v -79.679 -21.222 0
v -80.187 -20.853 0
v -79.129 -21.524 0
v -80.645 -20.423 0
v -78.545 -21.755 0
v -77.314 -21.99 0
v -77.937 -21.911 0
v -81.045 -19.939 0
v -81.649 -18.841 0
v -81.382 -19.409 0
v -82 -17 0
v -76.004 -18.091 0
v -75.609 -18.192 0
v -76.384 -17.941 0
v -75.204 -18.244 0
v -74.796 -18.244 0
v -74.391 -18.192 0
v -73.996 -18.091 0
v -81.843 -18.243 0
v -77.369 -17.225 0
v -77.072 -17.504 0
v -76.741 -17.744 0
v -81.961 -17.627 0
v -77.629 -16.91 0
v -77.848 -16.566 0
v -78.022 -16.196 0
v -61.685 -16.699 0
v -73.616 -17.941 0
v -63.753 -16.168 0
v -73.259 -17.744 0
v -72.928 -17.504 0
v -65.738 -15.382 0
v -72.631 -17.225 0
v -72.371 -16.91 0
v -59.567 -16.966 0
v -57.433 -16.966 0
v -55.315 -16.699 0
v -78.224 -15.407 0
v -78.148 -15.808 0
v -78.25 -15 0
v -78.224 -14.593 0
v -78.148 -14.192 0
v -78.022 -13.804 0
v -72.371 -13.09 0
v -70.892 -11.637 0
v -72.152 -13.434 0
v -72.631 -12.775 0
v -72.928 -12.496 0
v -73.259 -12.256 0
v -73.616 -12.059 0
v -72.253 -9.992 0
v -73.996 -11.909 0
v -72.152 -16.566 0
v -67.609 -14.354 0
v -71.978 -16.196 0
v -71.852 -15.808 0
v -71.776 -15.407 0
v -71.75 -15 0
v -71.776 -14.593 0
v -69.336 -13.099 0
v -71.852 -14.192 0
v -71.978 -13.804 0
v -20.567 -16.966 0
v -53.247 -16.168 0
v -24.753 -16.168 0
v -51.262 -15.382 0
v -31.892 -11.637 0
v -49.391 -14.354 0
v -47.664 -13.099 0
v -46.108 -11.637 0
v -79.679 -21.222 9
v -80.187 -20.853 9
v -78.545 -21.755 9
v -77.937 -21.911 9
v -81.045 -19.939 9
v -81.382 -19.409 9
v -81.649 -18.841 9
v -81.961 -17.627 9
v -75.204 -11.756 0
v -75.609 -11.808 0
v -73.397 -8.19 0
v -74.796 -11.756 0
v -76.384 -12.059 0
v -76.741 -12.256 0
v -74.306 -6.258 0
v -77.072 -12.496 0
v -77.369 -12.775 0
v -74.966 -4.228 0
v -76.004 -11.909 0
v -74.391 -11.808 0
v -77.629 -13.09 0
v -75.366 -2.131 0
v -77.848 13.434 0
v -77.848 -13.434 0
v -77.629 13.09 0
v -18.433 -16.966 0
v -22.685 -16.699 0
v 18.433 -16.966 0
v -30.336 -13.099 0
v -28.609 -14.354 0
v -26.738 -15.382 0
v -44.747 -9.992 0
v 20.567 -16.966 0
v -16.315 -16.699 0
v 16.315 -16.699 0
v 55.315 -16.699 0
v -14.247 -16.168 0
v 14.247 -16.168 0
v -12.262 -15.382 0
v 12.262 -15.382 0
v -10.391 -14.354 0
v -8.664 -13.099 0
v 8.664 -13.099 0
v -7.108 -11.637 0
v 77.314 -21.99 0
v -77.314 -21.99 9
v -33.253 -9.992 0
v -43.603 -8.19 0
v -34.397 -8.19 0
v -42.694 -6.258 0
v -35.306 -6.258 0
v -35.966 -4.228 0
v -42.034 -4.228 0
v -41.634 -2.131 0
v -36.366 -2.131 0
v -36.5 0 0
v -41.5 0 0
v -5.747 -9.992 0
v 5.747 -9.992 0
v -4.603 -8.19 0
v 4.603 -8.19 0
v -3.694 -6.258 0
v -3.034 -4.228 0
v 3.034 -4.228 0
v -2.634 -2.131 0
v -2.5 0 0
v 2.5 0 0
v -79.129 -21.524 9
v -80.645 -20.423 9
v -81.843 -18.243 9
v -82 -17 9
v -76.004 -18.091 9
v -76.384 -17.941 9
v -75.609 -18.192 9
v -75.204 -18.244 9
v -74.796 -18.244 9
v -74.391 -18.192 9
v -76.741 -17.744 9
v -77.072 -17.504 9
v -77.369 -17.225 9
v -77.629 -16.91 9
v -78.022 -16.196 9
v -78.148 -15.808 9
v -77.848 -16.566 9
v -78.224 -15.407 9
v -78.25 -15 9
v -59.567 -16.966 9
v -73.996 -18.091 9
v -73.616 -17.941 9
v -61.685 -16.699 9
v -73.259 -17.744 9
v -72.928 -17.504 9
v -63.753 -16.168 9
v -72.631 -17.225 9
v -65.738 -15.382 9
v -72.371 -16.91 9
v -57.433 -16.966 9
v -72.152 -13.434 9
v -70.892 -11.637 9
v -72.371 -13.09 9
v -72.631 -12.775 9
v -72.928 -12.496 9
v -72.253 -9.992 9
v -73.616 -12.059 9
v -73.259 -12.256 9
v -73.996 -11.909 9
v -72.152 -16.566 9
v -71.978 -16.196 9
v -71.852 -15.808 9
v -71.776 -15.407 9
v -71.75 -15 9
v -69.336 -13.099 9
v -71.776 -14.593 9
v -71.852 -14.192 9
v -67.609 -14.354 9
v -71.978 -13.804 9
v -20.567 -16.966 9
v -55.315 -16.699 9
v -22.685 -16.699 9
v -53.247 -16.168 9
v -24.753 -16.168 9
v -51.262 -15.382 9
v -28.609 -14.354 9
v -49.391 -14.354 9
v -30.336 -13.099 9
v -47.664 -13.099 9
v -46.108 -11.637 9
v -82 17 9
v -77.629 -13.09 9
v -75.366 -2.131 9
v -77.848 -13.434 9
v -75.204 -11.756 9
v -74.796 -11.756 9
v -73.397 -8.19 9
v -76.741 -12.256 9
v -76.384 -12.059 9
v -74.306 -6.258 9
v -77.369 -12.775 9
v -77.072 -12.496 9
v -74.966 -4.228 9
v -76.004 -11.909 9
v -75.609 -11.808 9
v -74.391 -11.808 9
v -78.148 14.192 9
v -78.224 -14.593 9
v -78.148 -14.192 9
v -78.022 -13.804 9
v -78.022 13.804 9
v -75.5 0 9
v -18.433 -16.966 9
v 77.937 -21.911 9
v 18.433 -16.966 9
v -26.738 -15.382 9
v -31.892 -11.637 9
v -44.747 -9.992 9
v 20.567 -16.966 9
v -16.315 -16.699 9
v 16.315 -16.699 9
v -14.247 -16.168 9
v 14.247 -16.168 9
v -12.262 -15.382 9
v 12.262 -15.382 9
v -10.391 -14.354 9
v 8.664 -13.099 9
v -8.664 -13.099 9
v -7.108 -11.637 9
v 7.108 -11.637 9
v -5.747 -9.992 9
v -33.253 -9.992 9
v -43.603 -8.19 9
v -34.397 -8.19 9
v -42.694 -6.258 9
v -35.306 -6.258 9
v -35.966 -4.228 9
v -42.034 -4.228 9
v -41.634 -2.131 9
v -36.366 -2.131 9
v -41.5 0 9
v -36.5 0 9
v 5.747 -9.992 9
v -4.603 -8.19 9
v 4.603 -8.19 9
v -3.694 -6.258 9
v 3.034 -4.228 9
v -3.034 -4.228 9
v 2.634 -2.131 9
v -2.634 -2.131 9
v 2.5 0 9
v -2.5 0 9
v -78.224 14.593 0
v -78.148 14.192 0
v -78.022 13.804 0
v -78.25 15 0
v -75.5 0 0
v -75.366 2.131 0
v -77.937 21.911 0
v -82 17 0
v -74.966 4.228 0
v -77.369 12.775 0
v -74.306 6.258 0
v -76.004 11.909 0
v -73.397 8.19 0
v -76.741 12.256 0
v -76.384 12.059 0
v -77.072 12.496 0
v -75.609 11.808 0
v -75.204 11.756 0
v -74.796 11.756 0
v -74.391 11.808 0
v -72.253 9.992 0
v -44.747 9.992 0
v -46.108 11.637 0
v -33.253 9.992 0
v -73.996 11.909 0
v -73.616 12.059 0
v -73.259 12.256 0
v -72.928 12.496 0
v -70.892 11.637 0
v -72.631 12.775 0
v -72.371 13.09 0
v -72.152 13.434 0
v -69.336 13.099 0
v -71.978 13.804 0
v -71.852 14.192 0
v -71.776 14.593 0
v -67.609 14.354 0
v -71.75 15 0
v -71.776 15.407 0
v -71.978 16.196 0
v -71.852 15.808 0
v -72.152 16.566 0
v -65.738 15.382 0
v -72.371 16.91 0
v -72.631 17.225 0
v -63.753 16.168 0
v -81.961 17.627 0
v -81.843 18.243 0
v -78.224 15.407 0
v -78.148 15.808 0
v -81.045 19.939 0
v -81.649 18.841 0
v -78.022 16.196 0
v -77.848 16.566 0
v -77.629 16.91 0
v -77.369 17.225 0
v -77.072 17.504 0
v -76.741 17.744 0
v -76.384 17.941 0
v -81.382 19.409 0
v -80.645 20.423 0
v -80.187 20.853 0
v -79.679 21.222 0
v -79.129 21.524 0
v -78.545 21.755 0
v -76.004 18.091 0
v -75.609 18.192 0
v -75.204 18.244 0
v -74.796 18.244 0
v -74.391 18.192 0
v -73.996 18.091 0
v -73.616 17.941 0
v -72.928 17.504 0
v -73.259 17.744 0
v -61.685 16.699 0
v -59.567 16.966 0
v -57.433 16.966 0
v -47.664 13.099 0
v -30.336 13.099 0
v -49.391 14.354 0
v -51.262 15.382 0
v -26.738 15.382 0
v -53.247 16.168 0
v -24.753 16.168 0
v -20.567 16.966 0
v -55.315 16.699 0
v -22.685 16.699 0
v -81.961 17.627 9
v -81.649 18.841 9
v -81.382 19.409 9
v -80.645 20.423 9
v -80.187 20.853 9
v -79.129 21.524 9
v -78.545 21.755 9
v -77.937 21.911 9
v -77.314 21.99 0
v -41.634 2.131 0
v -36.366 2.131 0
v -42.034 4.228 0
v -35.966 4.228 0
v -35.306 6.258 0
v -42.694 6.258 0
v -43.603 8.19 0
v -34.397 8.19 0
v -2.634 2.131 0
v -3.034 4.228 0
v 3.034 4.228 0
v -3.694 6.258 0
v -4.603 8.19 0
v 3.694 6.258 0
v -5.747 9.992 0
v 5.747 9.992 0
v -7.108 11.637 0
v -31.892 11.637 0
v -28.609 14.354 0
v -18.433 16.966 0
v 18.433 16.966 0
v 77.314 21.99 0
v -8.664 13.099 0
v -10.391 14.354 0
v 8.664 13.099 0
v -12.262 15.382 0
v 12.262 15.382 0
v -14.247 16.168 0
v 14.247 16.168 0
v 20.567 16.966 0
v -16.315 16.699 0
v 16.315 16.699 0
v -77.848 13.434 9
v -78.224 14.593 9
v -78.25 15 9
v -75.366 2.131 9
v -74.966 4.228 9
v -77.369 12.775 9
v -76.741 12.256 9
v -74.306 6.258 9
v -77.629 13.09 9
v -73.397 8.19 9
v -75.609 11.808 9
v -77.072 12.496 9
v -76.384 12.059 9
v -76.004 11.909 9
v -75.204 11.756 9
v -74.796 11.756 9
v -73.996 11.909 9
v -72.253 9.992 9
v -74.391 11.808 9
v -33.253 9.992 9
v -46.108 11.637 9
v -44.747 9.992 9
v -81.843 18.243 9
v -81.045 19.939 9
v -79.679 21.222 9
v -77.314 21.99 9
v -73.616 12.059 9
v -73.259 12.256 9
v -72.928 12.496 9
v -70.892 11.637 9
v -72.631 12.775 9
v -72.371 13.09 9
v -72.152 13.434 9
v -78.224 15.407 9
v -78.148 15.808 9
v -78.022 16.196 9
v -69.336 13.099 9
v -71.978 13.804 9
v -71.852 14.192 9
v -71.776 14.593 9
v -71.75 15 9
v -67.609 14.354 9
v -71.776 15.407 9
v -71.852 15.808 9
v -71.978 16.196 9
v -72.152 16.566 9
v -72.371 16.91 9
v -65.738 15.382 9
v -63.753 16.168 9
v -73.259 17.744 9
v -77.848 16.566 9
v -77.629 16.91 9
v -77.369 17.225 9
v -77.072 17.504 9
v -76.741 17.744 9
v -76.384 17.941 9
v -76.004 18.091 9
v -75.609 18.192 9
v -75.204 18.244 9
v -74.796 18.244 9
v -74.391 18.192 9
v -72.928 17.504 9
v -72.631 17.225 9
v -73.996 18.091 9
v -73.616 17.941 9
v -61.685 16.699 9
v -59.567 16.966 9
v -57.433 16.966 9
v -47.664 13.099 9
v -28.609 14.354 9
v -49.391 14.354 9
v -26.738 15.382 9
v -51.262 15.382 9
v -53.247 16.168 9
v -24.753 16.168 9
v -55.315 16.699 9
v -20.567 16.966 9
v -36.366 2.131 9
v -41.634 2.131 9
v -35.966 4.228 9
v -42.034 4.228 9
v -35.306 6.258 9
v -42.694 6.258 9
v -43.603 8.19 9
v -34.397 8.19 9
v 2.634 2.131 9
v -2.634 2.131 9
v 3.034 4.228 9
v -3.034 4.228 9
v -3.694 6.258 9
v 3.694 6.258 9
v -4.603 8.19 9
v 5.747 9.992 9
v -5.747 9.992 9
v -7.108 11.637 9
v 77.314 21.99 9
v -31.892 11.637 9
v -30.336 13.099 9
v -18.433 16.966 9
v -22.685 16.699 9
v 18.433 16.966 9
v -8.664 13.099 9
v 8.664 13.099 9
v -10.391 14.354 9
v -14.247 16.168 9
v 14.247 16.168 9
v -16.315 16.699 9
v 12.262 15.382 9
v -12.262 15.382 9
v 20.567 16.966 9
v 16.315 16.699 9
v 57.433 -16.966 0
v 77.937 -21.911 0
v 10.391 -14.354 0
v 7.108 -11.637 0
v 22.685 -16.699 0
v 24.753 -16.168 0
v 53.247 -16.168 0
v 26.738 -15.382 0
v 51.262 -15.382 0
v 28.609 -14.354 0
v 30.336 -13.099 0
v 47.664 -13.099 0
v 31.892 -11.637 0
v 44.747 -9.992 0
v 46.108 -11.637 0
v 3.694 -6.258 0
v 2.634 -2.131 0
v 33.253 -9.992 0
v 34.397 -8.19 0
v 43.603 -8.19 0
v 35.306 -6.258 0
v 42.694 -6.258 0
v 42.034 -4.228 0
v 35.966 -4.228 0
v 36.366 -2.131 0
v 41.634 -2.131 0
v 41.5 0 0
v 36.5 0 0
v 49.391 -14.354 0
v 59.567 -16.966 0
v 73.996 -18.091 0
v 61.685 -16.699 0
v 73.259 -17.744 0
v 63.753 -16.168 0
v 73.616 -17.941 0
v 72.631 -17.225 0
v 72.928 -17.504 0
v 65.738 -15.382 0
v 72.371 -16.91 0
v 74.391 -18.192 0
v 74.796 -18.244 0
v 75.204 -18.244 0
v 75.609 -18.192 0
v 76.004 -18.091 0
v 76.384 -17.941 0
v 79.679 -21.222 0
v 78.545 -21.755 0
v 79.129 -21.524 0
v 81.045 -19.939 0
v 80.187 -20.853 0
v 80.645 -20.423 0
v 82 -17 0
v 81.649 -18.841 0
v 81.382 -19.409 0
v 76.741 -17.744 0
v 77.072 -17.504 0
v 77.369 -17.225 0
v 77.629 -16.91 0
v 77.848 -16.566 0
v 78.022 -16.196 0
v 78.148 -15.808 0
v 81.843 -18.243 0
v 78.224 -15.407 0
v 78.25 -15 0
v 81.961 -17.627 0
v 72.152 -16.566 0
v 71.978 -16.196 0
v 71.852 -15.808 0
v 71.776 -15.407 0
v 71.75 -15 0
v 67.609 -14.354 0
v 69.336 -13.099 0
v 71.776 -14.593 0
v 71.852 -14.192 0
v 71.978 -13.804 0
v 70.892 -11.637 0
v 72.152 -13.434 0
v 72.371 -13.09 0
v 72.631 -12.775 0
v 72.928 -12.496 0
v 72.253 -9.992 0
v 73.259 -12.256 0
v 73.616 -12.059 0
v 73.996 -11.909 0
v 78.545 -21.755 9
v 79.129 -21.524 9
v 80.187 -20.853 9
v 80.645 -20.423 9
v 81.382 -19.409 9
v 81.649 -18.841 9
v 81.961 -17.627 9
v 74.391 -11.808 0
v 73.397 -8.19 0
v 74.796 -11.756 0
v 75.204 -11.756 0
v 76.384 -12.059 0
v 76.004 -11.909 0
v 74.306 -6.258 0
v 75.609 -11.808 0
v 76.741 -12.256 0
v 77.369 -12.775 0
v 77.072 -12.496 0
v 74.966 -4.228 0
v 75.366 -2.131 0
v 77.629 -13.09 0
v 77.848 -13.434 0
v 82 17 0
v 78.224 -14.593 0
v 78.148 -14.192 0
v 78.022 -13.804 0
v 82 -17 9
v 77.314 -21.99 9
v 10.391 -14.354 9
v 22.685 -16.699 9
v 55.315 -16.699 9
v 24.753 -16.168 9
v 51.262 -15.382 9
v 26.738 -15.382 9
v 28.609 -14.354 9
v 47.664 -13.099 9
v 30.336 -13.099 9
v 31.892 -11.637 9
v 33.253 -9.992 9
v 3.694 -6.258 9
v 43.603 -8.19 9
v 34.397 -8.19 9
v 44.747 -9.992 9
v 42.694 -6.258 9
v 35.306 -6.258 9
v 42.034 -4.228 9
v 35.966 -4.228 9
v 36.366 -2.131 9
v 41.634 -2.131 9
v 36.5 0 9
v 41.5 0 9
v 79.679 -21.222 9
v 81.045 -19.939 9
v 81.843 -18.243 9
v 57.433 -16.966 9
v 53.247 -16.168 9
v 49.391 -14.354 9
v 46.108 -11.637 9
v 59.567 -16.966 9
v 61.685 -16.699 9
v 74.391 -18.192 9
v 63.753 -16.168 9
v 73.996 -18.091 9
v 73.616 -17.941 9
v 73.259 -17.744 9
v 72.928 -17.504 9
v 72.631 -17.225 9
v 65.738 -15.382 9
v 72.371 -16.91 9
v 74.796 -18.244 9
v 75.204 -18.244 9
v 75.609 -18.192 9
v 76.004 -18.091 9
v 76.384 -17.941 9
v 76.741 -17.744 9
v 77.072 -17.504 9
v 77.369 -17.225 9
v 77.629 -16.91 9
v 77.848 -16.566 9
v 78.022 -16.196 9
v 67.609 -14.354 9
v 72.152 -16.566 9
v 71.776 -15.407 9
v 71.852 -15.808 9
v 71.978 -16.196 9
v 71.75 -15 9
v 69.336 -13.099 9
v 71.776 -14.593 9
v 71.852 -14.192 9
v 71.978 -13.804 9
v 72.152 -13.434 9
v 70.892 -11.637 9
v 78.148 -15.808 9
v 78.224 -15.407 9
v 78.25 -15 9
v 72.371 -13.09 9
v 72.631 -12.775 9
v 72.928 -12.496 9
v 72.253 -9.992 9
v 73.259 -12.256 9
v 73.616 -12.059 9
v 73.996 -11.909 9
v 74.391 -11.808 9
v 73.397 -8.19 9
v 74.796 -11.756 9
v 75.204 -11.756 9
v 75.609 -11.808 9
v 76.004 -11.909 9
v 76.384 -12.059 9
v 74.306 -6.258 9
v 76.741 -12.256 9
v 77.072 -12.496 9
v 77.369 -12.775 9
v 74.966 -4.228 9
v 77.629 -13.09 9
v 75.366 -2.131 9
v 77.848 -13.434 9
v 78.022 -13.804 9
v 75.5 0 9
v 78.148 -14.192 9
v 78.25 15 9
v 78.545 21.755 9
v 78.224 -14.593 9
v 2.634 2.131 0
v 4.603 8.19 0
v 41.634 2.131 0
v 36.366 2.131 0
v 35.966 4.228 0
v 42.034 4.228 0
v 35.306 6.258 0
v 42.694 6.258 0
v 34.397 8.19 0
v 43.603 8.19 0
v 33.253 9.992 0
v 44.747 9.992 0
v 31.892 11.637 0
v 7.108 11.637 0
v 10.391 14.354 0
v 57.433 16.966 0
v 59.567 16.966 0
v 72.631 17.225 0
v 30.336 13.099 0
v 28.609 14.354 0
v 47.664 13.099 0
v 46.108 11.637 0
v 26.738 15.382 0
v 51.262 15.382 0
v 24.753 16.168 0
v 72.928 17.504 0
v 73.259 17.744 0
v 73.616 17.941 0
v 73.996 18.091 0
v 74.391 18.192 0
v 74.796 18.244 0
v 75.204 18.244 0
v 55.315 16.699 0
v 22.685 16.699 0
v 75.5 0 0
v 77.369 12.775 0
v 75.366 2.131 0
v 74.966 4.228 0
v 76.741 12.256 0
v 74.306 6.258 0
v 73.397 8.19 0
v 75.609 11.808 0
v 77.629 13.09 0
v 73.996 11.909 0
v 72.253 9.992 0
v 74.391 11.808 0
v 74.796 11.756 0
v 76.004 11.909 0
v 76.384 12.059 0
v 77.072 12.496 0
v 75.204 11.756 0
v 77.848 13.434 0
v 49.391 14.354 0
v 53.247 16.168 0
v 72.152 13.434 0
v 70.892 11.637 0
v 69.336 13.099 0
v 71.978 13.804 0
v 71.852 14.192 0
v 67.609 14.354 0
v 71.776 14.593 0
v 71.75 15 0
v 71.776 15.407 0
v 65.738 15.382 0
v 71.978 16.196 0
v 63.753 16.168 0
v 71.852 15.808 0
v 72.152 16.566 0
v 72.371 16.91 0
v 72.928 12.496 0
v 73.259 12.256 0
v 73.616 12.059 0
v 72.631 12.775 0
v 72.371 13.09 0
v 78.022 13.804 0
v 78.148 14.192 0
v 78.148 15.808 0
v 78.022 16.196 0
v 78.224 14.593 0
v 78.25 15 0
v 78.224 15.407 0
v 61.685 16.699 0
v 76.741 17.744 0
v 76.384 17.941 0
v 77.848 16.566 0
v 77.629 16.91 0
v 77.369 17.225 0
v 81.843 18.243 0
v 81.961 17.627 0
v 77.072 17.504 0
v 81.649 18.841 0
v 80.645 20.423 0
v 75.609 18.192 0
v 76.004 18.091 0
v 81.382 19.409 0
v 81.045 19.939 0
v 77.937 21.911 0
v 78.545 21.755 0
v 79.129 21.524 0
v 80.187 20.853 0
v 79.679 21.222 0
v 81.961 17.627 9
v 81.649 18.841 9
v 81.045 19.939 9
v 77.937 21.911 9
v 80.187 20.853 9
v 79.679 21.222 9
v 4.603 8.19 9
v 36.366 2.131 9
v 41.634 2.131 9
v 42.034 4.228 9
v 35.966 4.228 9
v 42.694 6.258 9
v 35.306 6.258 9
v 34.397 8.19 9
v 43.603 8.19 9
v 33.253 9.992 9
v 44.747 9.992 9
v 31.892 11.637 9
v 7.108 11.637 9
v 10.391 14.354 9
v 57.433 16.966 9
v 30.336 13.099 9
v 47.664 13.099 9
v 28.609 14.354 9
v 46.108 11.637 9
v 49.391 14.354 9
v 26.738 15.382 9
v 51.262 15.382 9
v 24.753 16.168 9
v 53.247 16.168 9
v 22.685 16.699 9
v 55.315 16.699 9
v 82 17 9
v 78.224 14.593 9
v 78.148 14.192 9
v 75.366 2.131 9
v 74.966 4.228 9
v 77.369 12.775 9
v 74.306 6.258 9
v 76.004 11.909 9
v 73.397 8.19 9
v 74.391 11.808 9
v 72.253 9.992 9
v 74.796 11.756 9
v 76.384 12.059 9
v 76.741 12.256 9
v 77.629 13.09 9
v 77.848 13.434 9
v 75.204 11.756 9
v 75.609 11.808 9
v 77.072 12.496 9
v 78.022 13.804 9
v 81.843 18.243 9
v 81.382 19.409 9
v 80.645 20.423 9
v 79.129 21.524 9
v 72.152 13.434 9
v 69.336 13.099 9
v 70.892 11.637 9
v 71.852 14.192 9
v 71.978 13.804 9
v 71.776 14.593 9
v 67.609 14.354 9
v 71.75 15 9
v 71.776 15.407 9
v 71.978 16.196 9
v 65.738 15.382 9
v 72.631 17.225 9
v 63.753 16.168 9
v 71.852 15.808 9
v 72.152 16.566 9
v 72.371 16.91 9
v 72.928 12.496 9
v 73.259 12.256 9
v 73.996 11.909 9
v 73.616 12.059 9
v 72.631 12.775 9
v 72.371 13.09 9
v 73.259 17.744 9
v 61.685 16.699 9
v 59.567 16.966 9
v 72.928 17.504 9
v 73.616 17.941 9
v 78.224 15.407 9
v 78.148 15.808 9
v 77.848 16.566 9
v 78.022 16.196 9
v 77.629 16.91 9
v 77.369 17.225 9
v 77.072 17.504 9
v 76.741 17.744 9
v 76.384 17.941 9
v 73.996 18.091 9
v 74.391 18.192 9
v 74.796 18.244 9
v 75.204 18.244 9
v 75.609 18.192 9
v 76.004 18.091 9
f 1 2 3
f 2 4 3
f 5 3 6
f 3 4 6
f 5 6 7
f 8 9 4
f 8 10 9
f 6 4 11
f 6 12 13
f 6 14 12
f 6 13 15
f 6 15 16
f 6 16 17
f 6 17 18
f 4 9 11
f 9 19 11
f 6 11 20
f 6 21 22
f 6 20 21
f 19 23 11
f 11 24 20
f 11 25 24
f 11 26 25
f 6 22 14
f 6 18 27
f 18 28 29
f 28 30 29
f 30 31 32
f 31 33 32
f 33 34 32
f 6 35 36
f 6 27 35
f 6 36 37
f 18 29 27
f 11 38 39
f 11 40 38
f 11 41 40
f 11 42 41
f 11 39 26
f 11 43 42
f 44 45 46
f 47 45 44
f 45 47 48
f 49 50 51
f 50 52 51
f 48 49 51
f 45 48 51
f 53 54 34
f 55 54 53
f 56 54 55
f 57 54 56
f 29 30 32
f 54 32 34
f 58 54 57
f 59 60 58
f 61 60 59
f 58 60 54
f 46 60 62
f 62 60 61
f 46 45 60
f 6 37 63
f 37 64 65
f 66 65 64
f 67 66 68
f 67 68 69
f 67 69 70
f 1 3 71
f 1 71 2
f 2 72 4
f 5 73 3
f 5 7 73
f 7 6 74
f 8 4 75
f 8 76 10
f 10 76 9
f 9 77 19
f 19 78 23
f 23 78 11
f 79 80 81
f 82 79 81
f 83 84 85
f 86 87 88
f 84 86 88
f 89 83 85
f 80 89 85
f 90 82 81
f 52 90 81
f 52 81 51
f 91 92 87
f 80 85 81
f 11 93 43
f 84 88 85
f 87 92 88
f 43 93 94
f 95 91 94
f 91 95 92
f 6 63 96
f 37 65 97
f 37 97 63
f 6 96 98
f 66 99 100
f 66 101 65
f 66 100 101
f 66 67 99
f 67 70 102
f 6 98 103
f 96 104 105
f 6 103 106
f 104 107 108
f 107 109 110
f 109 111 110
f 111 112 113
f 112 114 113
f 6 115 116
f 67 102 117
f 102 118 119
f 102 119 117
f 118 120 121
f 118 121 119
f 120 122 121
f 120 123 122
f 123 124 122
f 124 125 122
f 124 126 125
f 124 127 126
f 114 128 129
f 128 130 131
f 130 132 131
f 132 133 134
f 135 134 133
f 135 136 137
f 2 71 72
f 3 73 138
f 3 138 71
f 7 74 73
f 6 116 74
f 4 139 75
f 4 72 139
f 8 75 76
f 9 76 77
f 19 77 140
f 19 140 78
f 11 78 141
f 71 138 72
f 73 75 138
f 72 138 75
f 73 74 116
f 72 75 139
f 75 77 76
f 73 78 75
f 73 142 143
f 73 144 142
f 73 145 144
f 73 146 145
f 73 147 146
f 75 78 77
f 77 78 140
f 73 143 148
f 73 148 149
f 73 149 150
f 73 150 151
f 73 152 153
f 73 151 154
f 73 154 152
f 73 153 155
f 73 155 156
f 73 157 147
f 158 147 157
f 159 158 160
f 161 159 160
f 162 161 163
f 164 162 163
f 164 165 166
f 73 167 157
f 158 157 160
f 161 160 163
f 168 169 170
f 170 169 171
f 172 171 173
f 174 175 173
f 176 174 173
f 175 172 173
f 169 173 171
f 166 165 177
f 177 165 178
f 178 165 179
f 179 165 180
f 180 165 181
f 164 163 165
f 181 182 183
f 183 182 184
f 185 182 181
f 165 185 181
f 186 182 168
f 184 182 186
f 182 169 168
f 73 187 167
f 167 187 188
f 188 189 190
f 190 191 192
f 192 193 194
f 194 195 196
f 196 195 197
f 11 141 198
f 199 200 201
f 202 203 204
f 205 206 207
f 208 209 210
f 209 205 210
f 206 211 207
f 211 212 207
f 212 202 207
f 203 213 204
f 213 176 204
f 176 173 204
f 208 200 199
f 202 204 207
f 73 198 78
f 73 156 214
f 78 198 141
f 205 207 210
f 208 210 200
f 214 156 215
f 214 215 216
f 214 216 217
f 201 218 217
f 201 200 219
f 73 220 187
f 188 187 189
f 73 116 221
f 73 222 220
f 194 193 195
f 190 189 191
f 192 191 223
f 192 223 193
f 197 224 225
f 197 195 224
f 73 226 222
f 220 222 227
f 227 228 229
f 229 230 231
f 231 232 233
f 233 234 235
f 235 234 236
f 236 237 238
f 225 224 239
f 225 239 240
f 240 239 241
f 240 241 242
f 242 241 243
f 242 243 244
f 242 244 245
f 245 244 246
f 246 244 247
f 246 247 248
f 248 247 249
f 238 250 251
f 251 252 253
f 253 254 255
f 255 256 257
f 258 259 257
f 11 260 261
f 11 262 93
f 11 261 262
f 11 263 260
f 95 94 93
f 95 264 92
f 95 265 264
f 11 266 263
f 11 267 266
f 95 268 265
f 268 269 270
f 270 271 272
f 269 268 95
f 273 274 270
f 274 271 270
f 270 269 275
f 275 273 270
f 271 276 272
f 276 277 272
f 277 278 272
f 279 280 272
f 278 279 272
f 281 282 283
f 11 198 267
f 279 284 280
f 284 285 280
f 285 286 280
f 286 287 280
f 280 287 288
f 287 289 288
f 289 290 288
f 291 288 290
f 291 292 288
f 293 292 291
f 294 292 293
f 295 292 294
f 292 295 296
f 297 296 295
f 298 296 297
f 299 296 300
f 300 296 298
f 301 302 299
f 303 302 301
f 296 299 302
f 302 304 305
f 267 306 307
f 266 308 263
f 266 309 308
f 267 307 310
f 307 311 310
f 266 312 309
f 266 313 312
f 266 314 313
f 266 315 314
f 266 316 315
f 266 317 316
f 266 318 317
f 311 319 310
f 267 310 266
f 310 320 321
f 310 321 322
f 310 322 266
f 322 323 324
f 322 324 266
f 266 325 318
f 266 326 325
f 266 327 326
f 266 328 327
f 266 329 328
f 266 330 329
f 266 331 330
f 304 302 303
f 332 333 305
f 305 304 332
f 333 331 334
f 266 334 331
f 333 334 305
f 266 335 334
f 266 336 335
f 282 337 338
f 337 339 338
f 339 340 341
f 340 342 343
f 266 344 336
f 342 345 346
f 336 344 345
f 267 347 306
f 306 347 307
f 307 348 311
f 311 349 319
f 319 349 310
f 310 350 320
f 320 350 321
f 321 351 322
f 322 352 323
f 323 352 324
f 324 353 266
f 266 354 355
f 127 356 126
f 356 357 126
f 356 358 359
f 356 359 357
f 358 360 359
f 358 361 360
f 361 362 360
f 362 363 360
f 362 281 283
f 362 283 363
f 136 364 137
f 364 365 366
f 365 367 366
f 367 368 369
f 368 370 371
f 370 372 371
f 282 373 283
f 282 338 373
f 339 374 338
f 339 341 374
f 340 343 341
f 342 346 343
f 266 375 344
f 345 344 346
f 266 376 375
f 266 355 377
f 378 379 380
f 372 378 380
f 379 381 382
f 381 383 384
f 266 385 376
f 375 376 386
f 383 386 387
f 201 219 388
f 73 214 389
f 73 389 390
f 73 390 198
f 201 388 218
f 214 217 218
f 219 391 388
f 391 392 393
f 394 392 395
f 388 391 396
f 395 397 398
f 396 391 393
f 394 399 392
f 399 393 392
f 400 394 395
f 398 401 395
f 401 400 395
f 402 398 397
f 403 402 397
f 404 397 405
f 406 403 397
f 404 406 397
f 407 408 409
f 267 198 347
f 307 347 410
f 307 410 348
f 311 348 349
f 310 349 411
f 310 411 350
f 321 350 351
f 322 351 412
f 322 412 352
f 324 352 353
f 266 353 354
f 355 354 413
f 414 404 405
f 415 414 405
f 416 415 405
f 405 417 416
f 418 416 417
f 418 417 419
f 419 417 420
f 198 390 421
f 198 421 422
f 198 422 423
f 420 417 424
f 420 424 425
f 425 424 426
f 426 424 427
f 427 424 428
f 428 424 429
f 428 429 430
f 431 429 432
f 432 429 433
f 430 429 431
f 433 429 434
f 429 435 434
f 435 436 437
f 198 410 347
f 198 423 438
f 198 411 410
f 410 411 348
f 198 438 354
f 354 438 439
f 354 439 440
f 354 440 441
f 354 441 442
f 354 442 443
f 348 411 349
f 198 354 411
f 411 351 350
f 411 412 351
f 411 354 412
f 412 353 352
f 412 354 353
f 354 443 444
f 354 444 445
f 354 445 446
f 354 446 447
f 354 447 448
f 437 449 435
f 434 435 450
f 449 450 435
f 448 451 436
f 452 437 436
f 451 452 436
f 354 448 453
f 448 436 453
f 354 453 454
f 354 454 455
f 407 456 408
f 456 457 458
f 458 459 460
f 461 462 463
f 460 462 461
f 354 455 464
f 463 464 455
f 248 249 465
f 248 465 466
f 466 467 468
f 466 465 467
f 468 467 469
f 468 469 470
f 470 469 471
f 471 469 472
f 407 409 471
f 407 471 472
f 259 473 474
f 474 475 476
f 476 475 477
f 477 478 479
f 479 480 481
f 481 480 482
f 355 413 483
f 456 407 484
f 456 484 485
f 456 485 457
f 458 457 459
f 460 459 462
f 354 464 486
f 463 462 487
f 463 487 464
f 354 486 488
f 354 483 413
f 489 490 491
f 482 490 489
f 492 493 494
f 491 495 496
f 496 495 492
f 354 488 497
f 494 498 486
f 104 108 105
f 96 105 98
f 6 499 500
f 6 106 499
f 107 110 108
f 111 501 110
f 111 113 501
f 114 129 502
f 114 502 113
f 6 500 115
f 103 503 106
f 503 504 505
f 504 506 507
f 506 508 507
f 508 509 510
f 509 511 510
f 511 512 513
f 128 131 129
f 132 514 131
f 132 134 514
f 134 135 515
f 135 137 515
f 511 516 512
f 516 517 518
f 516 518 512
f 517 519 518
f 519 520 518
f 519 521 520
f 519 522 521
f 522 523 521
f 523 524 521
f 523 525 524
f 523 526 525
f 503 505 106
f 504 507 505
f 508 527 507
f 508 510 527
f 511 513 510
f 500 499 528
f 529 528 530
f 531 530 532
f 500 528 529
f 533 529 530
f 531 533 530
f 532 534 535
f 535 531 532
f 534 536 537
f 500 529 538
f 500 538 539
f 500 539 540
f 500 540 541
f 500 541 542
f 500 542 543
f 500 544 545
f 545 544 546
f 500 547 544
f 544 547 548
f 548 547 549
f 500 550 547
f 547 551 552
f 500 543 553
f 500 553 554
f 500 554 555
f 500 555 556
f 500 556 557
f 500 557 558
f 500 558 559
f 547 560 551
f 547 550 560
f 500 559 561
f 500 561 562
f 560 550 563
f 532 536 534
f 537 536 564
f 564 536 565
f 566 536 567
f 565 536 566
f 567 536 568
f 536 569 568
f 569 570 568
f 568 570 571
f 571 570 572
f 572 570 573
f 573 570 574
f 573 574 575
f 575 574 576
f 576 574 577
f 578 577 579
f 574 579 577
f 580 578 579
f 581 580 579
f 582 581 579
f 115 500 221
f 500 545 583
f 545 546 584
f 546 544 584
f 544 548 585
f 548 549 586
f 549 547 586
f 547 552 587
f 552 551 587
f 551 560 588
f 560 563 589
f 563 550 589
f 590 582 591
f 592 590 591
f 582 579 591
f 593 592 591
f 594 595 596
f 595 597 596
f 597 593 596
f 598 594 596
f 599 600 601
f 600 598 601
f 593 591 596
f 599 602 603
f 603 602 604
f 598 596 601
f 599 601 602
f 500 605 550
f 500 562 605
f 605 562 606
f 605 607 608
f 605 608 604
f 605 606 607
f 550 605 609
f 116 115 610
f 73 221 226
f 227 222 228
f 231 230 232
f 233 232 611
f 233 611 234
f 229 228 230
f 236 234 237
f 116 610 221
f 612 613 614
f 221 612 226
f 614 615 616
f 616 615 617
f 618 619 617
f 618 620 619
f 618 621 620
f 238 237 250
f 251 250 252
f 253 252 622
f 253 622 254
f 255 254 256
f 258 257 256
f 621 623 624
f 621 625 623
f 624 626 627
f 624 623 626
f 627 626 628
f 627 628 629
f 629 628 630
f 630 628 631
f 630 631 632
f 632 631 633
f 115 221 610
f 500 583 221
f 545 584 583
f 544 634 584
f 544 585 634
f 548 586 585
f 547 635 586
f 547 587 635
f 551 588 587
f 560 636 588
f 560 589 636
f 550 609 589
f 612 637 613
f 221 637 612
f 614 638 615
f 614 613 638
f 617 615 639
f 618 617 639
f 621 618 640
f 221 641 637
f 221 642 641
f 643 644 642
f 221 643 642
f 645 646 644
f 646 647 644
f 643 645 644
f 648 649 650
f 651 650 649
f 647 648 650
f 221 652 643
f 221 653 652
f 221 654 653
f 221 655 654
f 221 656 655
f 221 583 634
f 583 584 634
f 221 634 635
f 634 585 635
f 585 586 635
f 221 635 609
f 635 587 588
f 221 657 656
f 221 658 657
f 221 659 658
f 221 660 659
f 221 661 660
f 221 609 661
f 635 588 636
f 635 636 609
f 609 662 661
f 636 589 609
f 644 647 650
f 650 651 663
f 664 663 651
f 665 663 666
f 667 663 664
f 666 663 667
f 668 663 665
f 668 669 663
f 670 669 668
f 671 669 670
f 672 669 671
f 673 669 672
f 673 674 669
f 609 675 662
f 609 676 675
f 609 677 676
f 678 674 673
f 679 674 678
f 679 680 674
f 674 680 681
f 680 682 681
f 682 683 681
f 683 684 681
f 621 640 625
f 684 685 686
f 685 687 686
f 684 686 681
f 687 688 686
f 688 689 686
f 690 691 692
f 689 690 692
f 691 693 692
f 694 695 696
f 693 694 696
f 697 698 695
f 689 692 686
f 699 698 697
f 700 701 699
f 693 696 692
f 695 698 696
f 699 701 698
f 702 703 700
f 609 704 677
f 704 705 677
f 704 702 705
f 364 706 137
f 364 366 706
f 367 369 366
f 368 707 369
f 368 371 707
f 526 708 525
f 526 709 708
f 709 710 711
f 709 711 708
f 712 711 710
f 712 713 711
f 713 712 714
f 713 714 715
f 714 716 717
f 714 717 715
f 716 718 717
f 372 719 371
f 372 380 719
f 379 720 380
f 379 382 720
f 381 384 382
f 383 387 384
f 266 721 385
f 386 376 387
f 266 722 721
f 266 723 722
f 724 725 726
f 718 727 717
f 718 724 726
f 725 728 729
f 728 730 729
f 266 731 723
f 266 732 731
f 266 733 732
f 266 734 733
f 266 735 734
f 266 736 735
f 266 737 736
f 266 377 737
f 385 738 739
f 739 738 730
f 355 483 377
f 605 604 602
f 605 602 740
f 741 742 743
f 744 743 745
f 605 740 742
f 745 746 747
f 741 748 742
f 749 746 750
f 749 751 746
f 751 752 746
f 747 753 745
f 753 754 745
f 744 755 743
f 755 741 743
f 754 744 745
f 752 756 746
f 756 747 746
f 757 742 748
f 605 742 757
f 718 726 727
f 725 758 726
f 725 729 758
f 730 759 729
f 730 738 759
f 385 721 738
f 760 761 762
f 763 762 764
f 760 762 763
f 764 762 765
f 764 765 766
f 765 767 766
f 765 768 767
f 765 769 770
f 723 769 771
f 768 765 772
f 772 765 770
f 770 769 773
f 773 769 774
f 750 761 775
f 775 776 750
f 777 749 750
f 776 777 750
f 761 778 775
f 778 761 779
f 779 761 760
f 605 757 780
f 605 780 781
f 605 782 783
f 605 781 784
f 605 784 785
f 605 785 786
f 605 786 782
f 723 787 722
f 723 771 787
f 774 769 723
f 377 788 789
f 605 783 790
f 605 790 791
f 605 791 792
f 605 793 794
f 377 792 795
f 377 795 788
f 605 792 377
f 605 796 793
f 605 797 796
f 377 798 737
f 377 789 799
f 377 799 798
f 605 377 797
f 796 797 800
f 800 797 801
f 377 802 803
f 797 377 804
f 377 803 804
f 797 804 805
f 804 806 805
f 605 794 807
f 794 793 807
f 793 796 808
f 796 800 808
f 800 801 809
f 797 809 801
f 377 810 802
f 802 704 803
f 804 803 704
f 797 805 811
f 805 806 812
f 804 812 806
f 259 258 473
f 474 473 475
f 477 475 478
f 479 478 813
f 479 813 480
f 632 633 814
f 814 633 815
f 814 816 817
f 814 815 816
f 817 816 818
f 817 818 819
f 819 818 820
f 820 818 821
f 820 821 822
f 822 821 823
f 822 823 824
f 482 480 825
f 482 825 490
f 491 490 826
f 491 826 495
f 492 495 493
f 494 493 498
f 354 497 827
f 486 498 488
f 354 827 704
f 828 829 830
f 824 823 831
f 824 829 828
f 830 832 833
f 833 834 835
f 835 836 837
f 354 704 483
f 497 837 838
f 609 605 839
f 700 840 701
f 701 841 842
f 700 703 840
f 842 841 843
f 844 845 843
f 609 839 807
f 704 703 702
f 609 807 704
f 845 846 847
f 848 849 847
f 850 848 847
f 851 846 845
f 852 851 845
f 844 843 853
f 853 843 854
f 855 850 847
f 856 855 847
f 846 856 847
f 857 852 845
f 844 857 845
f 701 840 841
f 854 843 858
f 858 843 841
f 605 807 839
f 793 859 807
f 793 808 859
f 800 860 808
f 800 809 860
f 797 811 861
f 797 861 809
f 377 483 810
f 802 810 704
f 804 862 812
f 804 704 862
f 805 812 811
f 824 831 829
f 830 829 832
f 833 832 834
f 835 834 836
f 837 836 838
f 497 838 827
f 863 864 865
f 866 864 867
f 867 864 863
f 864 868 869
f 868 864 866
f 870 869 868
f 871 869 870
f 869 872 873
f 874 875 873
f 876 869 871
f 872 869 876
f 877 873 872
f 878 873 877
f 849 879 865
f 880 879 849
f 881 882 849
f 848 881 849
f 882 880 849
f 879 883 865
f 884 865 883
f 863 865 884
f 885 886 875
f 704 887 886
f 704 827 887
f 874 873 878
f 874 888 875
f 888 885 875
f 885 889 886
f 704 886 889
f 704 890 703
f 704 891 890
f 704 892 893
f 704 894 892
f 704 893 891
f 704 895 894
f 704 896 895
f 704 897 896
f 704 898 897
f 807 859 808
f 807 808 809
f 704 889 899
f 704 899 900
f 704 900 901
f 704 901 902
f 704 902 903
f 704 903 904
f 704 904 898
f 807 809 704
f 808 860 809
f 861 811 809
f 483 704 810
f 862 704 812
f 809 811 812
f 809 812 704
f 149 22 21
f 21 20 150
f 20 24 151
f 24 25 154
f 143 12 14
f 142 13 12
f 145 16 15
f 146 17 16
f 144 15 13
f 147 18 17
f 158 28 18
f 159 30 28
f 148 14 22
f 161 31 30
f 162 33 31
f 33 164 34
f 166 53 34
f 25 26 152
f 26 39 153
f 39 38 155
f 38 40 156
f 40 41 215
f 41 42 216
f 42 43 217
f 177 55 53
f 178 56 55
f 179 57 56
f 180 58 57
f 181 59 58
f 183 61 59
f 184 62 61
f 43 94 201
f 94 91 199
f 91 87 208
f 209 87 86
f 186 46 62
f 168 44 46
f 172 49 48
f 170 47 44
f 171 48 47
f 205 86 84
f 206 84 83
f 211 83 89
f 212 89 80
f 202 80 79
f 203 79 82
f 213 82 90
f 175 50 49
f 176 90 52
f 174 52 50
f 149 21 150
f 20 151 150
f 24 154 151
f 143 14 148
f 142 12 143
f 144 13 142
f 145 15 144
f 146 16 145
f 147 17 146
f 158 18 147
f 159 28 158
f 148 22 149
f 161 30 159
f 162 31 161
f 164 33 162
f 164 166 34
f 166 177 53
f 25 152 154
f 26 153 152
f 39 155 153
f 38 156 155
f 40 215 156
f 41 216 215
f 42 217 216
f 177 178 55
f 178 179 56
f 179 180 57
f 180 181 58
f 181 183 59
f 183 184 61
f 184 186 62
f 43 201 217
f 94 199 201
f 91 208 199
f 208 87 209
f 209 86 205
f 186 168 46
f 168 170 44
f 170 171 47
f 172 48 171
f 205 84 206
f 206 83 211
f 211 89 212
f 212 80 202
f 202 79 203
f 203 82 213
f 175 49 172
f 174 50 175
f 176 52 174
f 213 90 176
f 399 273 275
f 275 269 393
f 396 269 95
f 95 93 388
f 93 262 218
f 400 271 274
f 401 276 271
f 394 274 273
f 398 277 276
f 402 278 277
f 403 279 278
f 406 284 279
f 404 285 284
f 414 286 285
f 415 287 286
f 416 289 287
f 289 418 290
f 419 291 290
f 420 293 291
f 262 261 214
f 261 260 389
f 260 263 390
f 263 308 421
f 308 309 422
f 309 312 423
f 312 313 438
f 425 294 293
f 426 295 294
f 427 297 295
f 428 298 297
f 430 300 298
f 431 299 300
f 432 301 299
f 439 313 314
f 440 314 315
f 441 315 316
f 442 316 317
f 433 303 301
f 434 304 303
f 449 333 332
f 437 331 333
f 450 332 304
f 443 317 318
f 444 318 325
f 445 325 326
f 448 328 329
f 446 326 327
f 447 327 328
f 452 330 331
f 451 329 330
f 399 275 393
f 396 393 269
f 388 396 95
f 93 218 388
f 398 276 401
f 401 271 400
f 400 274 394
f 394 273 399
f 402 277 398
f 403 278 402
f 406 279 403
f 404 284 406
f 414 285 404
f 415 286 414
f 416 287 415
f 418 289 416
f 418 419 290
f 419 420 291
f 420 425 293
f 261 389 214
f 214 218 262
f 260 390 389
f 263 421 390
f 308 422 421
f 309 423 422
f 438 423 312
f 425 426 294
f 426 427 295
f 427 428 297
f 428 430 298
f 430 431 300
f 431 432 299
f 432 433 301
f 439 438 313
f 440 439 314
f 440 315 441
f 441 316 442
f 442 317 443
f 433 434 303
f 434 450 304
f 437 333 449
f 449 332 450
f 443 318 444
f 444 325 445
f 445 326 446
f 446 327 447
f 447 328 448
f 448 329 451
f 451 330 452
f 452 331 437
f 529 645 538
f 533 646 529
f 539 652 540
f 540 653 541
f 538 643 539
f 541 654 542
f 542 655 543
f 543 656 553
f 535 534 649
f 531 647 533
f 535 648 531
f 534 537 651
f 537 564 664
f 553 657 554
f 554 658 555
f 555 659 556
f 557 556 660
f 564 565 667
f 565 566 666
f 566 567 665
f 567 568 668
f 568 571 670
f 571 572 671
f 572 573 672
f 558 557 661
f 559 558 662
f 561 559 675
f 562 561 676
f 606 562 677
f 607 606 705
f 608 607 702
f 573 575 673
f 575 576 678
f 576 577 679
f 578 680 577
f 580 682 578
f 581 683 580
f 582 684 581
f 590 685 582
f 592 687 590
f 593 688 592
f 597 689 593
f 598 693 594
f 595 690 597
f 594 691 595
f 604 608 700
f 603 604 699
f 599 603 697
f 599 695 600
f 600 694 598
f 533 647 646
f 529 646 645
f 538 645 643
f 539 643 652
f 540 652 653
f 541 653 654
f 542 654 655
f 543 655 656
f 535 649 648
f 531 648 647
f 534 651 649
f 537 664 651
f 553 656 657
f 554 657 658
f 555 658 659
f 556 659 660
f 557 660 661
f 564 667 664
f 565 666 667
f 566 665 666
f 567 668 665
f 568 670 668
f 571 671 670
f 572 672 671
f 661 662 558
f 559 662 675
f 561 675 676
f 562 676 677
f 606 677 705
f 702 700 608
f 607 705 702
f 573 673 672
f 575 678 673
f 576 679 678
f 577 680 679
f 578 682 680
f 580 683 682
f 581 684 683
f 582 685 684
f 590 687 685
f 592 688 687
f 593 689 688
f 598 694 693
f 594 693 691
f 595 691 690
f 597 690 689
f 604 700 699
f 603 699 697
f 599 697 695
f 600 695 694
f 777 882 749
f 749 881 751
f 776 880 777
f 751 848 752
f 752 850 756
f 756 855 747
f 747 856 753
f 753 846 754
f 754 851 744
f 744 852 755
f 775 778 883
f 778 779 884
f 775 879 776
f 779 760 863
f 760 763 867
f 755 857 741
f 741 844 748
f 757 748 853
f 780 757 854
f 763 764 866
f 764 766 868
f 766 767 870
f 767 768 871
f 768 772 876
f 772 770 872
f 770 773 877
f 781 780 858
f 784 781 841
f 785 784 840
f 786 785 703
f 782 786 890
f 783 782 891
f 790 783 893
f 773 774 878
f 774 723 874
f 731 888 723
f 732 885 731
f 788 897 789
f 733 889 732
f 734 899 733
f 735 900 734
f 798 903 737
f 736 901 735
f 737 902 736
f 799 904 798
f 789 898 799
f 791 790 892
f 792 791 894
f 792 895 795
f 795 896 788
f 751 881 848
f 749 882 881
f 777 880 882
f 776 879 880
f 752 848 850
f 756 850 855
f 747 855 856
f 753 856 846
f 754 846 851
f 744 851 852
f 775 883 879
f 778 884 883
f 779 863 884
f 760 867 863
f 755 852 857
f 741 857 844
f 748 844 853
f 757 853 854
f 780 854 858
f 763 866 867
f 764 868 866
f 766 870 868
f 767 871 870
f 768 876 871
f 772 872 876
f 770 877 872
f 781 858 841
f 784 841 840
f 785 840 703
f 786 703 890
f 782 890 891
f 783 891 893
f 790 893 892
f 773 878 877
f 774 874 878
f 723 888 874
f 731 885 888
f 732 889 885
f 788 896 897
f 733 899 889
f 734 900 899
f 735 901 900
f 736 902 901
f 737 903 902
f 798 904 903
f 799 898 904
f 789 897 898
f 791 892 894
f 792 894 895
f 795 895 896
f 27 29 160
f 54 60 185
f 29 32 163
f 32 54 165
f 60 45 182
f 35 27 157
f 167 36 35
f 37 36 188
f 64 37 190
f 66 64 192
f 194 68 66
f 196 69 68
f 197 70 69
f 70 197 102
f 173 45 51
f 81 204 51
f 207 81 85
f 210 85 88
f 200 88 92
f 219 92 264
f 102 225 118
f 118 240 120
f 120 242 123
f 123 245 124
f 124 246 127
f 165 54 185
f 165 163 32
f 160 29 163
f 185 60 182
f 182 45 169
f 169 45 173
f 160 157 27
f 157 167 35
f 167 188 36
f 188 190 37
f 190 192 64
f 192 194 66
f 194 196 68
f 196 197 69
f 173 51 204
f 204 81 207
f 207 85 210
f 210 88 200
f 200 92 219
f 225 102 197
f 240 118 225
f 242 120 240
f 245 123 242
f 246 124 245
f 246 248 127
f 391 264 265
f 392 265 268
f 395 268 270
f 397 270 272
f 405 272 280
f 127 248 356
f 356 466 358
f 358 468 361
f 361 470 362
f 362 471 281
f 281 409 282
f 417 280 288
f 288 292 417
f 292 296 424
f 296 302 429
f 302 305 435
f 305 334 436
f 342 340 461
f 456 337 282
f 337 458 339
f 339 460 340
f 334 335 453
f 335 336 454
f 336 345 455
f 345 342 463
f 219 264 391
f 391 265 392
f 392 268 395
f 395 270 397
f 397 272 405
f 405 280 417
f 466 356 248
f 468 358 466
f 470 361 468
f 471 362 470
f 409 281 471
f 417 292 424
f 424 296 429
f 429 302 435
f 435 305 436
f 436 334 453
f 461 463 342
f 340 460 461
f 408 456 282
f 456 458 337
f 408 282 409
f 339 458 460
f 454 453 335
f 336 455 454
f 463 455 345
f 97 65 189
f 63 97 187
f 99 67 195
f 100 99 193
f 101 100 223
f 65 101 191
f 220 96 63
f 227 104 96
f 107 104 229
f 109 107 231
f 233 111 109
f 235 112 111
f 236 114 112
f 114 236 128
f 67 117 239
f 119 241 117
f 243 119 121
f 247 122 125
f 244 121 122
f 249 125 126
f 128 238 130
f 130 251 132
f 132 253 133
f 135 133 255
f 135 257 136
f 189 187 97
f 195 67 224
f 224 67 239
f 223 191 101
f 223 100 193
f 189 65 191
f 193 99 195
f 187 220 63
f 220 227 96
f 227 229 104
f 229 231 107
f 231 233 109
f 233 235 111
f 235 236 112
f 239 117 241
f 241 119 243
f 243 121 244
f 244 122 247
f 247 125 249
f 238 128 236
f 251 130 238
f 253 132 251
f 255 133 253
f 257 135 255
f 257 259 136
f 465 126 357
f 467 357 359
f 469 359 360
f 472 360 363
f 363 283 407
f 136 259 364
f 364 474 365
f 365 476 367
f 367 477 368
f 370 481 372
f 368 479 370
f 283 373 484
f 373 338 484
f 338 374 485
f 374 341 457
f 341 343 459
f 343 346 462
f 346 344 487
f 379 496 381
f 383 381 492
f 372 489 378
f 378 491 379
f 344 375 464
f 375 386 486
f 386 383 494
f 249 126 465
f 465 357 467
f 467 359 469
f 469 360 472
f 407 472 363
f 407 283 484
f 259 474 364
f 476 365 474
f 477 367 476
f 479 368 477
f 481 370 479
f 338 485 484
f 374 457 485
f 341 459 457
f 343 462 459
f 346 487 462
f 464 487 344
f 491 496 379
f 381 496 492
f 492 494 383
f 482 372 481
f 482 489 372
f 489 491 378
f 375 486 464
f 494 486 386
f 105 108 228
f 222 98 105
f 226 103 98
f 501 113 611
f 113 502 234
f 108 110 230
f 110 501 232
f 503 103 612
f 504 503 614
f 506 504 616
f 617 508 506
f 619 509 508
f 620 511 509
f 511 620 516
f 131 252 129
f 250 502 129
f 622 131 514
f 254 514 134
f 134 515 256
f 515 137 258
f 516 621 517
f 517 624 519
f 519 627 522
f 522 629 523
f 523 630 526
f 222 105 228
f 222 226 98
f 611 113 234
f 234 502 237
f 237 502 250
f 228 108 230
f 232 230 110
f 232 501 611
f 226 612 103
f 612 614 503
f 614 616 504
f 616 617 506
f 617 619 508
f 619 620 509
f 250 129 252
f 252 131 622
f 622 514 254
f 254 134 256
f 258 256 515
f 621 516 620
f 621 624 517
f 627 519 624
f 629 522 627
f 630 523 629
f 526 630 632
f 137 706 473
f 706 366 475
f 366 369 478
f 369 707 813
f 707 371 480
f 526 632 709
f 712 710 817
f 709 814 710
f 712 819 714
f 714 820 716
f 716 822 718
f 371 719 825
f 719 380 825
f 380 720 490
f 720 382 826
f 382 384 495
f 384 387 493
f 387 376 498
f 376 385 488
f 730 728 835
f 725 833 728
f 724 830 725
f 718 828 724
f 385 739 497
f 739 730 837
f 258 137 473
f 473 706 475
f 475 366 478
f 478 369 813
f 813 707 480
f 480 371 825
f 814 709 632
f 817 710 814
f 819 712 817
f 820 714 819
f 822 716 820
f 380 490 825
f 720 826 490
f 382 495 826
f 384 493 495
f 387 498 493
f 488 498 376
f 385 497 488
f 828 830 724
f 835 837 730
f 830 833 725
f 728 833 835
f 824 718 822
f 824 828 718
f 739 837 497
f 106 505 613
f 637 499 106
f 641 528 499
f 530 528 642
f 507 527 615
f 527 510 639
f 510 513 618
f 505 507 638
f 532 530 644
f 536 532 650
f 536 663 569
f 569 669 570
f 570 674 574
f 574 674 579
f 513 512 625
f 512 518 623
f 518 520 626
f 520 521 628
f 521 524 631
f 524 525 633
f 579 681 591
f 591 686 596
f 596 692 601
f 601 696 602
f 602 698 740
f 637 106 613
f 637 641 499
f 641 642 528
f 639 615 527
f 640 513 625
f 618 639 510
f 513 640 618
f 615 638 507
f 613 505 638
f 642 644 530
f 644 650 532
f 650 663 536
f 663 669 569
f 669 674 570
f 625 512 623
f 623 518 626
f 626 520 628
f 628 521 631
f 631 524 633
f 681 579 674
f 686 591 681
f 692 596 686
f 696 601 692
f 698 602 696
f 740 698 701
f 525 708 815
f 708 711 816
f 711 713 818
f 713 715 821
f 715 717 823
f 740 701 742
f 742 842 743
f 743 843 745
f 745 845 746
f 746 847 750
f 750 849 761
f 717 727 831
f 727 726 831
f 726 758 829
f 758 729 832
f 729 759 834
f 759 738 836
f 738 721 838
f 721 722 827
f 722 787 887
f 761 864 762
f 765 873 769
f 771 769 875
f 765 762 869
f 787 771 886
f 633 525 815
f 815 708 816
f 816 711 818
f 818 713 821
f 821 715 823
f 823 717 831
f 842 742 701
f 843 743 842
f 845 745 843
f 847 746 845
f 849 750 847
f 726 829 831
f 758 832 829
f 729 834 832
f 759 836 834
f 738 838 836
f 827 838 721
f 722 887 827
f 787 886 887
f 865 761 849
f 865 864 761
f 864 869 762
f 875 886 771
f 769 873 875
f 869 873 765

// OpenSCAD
$fn = 50;

difference() {
	union() {
		hull() {
			translate(v = [-77.0, 17.0, 0]) {
				cylinder(h = 9, r = 5);
			}
			translate(v = [77.0, 17.0, 0]) {
				cylinder(h = 9, r = 5);
			}
			translate(v = [-77.0, -17.0, 0]) {
				cylinder(h = 9, r = 5);
			}
			translate(v = [77.0, -17.0, 0]) {
				cylinder(h = 9, r = 5);
			}
		}
	}
	union() {
		translate(v = [-75.0, -15.0, -100.0]) {
			cylinder(h = 200, r = 3.25);
		}
		translate(v = [-75.0, 15.0, -100.0]) {
			cylinder(h = 200, r = 3.25);
		}
		translate(v = [75.0, -15.0, -100.0]) {
			cylinder(h = 200, r = 3.25);
		}
		translate(v = [75.0, 15.0, -100.0]) {
			cylinder(h = 200, r = 3.25);
		}
		translate(v = [-75.0, -15.0, -100.0]) {
			cylinder(h = 200, r = 1.8);
		}
		translate(v = [-75.0, 15.0, -100.0]) {
			cylinder(h = 200, r = 1.8);
		}
		translate(v = [75.0, -15.0, -100.0]) {
			cylinder(h = 200, r = 1.8);
		}
		translate(v = [75.0, 15.0, -100.0]) {
			cylinder(h = 200, r = 1.8);
		}
		translate(v = [-58.5, 0, 0.0]) {
			cylinder(h = 9, r = 17.0);
		}
		translate(v = [-19.5, 0, 0.0]) {
			cylinder(h = 9, r = 17.0);
		}
		translate(v = [19.5, 0, 0.0]) {
			cylinder(h = 9, r = 17.0);
		}
		translate(v = [58.5, 0, 0.0]) {
			cylinder(h = 9, r = 17.0);
		}
	}
}
